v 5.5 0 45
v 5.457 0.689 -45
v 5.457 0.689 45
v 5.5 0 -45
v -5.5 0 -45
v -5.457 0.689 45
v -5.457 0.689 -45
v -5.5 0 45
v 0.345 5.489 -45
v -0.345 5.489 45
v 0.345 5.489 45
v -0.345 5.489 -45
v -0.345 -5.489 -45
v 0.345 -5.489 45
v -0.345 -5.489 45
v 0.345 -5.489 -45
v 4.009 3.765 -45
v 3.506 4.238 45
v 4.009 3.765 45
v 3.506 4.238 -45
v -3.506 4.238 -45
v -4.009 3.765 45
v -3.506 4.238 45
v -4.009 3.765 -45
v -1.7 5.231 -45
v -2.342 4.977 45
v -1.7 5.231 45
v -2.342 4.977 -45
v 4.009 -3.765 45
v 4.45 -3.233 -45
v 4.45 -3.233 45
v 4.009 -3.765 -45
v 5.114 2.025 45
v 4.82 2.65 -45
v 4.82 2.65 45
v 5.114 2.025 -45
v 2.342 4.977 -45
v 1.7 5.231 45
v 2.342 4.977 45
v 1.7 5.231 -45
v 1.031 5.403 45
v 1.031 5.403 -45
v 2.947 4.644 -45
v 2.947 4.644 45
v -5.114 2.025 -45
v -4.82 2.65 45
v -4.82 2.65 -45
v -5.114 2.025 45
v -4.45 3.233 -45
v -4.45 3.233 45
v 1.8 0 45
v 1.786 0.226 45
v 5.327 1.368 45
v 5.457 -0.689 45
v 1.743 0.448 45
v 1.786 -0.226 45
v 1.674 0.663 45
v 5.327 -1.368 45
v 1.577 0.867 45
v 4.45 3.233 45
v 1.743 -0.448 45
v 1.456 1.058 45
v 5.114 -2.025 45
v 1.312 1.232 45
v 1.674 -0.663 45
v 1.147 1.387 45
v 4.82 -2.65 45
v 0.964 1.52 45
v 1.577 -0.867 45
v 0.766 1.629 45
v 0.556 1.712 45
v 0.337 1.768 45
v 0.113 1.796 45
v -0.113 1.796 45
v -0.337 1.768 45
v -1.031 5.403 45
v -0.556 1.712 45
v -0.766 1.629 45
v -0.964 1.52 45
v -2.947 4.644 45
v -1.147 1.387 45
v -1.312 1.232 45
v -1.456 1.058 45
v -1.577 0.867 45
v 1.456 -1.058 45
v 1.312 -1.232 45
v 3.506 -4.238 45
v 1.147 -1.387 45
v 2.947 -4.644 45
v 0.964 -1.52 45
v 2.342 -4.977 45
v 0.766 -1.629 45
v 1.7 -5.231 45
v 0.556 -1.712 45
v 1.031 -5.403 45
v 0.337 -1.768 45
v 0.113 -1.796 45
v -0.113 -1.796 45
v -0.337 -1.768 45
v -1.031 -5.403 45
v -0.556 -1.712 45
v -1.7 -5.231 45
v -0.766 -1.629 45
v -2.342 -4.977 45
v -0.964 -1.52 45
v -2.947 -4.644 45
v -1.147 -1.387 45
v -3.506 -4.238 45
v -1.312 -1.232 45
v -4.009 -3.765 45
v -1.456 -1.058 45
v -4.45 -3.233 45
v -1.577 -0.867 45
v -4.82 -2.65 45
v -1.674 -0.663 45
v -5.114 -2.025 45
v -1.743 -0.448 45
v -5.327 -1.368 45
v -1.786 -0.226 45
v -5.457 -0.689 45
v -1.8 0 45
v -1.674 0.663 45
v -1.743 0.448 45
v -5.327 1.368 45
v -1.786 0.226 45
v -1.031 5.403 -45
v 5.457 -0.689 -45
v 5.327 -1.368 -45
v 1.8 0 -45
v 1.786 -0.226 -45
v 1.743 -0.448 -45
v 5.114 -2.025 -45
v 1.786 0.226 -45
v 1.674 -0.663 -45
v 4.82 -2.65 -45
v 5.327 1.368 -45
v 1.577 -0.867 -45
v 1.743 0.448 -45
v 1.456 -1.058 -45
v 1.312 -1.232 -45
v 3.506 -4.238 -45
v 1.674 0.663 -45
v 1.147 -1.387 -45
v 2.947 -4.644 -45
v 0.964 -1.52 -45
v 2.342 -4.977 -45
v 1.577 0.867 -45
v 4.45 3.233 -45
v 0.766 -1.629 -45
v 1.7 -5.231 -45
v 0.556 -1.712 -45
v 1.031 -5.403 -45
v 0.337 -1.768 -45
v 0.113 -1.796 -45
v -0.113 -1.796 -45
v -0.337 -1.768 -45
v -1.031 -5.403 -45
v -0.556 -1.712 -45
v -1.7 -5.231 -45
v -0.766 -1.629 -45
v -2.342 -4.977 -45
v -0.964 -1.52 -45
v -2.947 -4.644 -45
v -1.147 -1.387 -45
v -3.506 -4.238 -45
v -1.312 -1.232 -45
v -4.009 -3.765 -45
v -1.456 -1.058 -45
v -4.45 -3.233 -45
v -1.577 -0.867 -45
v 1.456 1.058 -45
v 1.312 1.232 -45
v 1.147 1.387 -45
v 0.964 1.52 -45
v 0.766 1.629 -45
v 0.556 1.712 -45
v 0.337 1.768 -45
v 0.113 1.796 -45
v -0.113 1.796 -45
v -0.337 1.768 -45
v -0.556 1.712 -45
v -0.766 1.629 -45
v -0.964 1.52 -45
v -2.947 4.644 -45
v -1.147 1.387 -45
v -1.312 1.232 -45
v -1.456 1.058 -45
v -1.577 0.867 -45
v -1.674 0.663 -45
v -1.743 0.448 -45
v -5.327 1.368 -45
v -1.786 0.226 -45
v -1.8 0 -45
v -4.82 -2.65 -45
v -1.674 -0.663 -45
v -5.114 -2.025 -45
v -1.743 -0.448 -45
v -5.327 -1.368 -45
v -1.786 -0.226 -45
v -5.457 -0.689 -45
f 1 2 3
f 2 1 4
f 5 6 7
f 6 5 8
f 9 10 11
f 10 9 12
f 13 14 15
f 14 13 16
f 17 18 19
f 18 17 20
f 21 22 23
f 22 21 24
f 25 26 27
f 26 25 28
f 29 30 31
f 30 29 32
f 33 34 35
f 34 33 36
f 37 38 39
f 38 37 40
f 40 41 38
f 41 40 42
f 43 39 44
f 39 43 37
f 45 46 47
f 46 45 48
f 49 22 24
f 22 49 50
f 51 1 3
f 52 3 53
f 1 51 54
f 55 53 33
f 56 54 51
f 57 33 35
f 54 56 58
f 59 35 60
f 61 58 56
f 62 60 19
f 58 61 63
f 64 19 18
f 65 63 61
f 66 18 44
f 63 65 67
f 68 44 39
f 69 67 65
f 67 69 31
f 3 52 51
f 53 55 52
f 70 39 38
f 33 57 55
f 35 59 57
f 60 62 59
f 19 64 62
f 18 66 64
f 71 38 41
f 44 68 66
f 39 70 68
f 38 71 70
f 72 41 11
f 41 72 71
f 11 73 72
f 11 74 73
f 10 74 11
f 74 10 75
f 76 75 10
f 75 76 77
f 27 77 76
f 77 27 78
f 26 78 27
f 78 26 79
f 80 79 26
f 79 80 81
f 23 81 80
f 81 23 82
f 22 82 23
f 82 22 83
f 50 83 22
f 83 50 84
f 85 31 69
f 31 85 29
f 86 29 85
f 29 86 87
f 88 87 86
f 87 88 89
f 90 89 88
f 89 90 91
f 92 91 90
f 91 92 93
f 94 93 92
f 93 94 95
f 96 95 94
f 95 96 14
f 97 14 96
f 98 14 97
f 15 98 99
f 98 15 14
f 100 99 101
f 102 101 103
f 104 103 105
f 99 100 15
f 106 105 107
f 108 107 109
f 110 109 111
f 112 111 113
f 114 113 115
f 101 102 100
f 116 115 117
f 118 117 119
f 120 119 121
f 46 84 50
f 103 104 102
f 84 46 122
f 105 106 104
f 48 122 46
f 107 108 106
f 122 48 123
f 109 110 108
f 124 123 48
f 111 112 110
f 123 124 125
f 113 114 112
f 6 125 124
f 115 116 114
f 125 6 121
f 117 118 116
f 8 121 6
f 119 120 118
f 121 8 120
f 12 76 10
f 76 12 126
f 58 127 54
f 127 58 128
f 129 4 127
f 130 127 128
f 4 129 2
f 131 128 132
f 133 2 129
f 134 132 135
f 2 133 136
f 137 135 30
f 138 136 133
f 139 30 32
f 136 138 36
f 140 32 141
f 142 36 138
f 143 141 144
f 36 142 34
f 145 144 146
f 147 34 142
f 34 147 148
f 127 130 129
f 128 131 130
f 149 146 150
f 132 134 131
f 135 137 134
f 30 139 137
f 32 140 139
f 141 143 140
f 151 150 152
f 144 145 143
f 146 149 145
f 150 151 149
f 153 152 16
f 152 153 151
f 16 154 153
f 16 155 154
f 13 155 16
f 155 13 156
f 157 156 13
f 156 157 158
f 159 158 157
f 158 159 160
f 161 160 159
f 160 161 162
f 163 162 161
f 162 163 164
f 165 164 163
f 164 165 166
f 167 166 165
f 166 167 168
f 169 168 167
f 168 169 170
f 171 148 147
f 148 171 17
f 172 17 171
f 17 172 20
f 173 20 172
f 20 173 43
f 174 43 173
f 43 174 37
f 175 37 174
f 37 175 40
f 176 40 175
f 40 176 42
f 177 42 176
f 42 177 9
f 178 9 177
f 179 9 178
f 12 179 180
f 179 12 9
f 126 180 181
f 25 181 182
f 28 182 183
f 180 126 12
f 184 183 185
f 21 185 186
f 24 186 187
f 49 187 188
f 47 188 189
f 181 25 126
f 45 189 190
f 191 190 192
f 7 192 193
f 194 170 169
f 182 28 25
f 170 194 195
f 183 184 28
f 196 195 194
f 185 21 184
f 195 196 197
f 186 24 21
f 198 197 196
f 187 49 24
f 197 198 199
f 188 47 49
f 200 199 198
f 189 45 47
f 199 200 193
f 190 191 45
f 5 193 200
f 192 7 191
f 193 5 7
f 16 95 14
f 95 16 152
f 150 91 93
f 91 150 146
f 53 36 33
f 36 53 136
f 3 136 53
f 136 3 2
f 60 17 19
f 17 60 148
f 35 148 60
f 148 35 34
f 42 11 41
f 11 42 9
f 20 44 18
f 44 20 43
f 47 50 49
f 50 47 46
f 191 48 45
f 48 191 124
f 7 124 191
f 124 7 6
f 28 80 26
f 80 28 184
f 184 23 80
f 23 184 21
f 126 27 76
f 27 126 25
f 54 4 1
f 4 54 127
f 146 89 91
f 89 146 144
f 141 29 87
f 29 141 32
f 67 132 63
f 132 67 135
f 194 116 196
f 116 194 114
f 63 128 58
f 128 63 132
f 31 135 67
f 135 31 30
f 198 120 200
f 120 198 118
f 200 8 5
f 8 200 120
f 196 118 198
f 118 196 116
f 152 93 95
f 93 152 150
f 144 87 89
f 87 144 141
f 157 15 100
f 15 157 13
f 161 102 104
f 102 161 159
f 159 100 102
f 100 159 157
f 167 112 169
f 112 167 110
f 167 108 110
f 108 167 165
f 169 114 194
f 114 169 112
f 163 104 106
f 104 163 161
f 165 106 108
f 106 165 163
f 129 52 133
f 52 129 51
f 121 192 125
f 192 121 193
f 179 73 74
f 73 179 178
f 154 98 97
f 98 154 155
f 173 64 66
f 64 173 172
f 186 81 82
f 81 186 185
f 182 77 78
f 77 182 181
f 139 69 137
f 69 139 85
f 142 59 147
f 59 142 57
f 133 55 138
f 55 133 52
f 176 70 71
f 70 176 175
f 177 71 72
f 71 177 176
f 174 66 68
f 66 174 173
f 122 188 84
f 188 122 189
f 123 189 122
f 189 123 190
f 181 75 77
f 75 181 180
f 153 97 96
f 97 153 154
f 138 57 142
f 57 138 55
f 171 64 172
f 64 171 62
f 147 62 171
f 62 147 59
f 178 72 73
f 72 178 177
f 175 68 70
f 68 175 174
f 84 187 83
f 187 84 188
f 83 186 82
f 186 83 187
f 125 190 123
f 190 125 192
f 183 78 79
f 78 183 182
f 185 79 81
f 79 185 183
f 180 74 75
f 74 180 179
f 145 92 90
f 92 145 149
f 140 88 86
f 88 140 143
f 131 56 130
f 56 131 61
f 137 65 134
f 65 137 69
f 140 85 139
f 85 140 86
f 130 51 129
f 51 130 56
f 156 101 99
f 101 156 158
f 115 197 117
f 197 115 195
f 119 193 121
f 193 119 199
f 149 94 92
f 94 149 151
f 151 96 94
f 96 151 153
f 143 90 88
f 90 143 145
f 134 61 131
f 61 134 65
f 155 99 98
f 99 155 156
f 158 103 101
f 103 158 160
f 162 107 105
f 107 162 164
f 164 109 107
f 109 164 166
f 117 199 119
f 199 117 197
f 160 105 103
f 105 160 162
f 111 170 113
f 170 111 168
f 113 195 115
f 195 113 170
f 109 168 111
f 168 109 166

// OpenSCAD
$fn = 50;


difference() {
	union() {
		translate(v = [0, 0, -45.0000000000]) {
			cylinder(h = 90, r = 5.5000000000);
		}
	}
	union() {
		translate(v = [0, 0, -100.0000000000]) {
			cylinder(h = 200, r = 1.8000000000);
		}
	}
}
